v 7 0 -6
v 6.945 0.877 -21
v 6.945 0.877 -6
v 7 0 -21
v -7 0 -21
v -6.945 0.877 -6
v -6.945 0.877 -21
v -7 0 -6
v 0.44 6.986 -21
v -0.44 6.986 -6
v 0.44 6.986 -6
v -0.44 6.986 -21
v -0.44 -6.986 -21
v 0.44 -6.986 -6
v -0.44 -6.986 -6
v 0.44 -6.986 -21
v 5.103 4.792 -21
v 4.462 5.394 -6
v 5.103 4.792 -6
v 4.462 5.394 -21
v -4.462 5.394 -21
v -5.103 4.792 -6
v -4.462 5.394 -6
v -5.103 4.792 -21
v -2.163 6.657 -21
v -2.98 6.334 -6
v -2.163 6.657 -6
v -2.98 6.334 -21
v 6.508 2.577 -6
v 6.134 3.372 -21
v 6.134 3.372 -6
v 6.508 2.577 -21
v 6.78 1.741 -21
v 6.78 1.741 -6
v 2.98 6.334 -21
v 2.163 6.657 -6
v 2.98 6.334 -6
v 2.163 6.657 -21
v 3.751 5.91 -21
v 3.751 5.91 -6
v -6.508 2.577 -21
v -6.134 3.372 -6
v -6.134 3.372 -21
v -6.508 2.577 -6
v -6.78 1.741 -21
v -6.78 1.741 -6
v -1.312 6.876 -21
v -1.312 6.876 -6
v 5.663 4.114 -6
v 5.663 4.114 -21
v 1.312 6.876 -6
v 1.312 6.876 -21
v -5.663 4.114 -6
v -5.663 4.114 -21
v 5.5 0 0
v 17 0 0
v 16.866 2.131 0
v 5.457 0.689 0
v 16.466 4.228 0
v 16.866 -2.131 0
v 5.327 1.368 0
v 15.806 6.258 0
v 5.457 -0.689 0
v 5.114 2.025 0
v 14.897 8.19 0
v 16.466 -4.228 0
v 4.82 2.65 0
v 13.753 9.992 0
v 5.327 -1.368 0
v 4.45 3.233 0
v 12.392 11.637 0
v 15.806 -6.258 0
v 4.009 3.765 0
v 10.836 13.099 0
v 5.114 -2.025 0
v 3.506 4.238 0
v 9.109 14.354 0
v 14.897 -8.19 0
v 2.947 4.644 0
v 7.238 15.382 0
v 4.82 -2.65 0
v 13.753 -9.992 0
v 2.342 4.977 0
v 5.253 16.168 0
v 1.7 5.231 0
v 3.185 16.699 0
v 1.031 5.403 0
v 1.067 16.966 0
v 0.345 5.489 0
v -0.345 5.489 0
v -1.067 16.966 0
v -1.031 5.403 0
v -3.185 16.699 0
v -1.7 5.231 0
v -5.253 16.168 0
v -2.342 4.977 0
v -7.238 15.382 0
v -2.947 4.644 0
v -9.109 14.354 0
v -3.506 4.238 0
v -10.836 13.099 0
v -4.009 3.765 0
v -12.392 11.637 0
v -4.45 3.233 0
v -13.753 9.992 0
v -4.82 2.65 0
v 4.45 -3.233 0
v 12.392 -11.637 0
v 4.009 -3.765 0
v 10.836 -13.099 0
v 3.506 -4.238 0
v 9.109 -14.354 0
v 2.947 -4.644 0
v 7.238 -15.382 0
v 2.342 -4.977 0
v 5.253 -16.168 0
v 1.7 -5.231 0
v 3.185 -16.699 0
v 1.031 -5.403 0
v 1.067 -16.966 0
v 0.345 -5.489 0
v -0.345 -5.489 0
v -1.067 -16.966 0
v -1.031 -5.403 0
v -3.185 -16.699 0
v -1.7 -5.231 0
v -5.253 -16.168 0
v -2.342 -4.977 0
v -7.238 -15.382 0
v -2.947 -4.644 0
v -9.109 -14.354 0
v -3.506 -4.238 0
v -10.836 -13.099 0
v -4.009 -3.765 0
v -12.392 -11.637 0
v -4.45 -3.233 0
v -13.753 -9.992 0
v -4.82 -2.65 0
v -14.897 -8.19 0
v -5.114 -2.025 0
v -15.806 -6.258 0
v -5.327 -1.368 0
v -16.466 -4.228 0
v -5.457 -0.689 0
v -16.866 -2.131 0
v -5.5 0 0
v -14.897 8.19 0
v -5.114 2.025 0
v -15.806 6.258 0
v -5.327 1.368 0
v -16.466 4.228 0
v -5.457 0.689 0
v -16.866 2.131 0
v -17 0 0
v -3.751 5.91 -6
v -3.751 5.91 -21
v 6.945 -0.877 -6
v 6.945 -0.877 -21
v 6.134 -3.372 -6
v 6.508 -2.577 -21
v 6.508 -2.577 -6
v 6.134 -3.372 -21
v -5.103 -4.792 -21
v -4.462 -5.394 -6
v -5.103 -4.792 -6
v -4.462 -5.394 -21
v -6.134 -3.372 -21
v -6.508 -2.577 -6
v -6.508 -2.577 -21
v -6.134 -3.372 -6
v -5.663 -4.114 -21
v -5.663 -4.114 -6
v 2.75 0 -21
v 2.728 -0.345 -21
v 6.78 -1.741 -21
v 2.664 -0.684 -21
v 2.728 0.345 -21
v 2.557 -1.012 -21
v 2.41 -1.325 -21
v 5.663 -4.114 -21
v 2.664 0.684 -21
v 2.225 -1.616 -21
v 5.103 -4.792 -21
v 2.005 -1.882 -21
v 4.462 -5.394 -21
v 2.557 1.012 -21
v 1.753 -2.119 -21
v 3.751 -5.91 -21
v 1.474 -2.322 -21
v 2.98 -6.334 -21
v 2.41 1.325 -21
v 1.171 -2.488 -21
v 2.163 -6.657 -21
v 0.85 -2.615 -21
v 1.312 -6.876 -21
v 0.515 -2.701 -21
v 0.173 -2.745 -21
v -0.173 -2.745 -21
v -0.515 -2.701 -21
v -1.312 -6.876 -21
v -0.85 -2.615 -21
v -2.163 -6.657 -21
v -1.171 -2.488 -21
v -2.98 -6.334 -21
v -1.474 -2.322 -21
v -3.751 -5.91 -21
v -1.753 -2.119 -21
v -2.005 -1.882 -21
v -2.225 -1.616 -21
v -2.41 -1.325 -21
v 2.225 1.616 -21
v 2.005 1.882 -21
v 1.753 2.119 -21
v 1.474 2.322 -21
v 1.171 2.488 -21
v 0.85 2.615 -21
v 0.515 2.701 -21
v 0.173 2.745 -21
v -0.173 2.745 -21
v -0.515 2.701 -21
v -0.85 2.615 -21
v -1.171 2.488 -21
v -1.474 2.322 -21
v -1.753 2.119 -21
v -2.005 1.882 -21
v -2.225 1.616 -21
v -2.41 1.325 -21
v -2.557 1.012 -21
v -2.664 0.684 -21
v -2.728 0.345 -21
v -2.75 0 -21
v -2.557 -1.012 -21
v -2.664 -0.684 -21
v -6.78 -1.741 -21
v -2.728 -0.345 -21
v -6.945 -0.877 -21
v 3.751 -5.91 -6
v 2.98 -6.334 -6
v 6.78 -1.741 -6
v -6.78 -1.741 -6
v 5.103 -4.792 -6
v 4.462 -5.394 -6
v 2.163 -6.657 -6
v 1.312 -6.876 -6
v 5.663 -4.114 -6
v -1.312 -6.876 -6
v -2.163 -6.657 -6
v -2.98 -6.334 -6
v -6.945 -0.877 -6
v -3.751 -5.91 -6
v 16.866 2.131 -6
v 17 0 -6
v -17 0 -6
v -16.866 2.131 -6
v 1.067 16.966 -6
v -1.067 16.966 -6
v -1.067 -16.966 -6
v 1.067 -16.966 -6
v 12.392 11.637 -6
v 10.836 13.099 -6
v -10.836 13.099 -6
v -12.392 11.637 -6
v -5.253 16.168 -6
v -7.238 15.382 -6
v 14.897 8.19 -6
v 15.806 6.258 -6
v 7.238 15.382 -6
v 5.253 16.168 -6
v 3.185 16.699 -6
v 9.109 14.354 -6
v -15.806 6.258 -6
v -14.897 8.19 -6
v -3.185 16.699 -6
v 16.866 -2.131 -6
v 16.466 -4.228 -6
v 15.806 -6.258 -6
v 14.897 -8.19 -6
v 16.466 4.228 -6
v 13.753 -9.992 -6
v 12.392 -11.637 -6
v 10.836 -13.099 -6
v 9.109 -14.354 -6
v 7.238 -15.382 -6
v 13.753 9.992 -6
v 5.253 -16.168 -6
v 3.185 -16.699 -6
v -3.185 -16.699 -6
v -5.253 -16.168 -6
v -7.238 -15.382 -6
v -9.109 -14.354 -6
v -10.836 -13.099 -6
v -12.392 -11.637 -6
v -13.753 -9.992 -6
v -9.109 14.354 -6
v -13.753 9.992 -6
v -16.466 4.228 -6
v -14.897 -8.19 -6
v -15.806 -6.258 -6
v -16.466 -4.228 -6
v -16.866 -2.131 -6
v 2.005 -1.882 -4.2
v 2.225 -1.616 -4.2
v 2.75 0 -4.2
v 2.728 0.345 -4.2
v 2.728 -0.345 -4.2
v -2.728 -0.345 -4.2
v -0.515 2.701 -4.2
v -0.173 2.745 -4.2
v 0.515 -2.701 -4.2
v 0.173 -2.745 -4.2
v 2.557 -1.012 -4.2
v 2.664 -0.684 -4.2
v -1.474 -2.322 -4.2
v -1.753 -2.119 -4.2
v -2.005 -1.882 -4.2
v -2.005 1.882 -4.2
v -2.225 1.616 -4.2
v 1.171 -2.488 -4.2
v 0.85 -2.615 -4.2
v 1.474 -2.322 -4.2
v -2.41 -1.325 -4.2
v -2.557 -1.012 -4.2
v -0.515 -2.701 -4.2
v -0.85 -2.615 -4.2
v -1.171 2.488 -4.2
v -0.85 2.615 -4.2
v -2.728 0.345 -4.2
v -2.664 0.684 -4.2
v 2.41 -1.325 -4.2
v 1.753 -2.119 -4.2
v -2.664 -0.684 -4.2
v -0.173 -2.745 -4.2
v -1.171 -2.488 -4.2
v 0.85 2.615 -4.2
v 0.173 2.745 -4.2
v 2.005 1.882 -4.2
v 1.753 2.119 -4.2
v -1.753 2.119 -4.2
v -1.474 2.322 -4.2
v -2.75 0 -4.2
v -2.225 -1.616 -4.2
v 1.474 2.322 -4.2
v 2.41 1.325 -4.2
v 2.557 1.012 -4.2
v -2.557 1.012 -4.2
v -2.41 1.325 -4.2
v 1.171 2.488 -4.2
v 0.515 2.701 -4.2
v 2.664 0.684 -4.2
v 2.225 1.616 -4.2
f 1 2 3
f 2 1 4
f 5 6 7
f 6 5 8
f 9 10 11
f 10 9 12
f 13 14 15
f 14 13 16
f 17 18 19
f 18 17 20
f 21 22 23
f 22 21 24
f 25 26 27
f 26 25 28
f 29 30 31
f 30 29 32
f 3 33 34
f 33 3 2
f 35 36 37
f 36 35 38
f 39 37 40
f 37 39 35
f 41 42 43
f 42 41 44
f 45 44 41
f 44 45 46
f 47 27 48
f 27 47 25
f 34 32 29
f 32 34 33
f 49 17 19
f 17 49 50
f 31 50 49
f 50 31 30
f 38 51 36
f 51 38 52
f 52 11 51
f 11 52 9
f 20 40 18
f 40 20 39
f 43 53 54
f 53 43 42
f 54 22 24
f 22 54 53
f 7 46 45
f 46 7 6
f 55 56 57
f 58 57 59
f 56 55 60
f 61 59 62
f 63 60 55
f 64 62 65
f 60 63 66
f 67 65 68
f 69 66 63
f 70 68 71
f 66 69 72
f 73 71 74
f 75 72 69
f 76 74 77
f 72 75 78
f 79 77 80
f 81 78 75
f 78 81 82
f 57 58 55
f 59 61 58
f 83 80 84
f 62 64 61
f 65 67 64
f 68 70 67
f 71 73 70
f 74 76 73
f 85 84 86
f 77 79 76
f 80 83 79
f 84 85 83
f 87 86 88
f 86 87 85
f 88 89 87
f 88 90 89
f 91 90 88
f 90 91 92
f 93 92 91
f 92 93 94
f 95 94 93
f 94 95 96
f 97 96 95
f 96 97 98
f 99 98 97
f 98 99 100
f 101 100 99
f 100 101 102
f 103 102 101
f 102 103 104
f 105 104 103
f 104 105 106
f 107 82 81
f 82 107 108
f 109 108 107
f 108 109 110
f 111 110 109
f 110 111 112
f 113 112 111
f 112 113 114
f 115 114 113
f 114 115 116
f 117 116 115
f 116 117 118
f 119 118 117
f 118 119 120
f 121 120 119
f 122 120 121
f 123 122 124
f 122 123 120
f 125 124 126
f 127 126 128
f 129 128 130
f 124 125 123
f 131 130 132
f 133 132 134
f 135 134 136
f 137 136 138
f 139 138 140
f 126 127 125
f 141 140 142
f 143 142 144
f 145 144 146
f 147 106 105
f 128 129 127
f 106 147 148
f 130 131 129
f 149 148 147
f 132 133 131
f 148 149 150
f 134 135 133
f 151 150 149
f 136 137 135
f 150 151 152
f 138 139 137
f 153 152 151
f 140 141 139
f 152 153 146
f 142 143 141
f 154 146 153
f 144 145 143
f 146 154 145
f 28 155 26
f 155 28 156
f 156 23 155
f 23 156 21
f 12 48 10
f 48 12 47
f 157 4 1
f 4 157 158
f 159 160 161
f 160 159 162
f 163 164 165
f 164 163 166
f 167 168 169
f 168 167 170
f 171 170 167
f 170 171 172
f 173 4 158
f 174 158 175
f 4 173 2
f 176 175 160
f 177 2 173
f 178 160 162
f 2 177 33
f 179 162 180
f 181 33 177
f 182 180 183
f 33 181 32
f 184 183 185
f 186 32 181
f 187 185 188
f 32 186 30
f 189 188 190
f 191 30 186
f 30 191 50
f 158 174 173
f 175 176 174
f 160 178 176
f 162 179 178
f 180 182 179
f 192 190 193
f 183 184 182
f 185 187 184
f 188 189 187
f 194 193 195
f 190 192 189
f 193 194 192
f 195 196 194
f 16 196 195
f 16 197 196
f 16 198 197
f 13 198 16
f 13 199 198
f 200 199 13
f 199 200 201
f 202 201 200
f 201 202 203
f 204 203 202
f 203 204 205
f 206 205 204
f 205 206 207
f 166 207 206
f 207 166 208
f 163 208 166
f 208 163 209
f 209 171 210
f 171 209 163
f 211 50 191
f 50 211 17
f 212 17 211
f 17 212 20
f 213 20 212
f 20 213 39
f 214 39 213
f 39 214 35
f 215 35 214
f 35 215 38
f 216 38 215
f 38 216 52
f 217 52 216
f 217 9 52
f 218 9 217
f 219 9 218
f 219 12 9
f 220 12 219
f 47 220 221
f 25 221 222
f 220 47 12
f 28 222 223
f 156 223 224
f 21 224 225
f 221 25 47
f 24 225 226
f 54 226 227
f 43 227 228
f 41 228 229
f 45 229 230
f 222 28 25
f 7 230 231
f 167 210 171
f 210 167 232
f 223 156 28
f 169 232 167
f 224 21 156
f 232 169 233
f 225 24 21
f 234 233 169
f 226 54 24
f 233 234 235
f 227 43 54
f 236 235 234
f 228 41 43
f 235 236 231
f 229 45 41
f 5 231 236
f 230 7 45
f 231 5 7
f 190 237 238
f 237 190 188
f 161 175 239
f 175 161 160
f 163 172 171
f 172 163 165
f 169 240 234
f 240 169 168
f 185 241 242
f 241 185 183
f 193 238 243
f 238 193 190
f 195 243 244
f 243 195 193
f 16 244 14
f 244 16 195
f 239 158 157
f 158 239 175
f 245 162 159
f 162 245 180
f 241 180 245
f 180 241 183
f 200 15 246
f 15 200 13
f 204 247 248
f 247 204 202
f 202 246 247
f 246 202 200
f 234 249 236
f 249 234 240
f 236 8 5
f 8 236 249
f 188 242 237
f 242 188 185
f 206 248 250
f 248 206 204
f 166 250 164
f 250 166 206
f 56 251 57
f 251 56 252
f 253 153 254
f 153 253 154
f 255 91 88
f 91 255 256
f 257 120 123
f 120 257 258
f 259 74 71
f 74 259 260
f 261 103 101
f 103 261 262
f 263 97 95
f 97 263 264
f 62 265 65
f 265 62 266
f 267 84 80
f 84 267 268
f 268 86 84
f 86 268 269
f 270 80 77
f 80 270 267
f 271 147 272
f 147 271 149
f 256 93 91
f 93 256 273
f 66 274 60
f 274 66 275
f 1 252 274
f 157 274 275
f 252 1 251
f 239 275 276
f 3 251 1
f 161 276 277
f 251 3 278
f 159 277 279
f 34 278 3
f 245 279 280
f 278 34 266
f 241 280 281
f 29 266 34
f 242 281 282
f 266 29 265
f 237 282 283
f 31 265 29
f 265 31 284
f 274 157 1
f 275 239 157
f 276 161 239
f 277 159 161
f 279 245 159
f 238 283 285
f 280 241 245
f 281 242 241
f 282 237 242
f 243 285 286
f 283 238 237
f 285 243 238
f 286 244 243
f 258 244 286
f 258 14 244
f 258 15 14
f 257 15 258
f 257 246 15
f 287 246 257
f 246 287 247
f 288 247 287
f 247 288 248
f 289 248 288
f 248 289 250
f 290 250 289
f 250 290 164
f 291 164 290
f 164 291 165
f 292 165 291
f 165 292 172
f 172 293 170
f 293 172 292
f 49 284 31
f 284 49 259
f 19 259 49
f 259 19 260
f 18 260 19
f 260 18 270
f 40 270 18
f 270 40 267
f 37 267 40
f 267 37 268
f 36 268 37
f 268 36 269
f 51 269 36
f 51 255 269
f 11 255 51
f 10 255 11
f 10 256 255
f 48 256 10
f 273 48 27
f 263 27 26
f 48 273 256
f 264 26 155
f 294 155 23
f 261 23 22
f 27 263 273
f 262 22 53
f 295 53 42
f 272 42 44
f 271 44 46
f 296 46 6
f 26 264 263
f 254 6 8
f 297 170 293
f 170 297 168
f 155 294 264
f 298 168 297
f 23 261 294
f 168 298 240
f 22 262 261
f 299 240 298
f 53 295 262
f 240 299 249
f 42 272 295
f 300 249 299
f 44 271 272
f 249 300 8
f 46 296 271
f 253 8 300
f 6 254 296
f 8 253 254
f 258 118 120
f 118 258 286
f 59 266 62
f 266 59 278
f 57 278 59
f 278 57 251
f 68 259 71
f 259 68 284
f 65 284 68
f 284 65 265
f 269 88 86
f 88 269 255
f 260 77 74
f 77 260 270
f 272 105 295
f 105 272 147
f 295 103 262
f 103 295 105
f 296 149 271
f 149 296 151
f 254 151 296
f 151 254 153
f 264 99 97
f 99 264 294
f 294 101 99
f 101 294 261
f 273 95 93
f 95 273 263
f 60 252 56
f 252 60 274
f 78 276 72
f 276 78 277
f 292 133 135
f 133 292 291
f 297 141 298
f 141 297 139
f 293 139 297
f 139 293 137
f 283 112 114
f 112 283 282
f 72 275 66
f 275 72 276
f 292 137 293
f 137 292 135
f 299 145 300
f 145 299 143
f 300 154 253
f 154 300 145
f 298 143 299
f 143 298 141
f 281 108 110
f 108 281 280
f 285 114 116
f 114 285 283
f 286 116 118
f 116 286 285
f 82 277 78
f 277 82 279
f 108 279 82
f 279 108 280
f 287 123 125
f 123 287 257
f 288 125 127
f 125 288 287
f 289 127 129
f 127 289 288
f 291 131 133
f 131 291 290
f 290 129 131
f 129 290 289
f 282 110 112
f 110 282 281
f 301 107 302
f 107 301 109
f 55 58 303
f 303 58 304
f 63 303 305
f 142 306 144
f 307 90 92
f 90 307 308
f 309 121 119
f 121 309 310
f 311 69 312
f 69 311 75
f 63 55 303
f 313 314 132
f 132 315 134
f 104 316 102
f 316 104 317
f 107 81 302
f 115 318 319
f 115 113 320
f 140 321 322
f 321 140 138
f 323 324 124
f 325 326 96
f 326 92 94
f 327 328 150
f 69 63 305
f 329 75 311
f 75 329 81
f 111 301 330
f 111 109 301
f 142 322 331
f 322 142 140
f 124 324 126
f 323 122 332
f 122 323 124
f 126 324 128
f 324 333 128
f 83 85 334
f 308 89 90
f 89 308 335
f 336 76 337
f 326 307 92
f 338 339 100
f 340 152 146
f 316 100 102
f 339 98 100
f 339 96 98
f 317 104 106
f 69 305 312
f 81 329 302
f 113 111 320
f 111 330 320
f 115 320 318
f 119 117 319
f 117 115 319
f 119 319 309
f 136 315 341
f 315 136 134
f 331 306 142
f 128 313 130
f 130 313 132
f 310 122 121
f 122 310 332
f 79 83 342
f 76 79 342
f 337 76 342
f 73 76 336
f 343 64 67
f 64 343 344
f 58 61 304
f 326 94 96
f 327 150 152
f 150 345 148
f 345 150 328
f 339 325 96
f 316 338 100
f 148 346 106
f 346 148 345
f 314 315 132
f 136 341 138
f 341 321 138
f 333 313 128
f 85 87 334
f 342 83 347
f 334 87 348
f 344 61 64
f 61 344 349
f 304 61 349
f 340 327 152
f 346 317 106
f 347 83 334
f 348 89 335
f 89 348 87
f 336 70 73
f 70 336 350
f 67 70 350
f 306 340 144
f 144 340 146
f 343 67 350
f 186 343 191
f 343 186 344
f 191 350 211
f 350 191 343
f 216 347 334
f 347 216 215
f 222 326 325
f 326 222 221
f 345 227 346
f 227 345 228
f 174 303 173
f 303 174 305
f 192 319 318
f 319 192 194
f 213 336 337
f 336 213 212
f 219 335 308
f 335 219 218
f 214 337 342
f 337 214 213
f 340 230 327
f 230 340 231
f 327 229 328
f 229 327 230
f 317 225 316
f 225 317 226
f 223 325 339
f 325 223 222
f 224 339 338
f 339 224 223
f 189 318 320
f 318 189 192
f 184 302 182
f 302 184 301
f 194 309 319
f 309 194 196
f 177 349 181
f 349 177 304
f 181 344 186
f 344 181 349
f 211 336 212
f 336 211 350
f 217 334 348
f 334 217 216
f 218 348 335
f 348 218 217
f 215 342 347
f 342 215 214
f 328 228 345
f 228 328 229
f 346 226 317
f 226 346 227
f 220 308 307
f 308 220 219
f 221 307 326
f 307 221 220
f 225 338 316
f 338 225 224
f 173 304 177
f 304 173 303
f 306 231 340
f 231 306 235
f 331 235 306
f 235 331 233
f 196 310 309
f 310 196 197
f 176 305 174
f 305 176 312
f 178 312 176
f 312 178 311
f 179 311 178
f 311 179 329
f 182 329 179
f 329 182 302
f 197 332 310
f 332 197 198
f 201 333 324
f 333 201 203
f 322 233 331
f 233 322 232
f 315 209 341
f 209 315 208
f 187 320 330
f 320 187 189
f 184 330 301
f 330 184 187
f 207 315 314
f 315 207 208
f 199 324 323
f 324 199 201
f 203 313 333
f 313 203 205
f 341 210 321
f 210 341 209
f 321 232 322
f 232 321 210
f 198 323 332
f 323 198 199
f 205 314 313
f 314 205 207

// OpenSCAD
$fn = 50;


difference() {
	union() {
		translate(v = [0, 0, -21.0000000000]) {
			cylinder(h = 21, r = 7.0000000000);
		}
		translate(v = [0, 0, -6.0000000000]) {
			cylinder(h = 6, r = 17.0000000000);
		}
	}
	union() {
		translate(v = [0, 0, 0]) {
			rotate(a = [0, 0, 0]) {
				difference() {
					union() {
						#translate(v = [0, 0, -21.0000000000]) {
							cylinder(h = 21, r = 2.2500000000);
						}
						#translate(v = [0, 0, -4.2000000000]) {
							cylinder(h = 4.2000000000, r = 7.0000000000, r1 = 2.7500000000, r2 = 5.5000000000);
						}
						#translate(v = [0, 0, -21.0000000000]) {
							cylinder(h = 21, r = 2.7500000000);
						}
						#translate(v = [0, 0, -21.0000000000]) {
							cylinder(h = 21, r = 2.2500000000);
						}
					}
					union();
				}
			}
		}
	}
}
